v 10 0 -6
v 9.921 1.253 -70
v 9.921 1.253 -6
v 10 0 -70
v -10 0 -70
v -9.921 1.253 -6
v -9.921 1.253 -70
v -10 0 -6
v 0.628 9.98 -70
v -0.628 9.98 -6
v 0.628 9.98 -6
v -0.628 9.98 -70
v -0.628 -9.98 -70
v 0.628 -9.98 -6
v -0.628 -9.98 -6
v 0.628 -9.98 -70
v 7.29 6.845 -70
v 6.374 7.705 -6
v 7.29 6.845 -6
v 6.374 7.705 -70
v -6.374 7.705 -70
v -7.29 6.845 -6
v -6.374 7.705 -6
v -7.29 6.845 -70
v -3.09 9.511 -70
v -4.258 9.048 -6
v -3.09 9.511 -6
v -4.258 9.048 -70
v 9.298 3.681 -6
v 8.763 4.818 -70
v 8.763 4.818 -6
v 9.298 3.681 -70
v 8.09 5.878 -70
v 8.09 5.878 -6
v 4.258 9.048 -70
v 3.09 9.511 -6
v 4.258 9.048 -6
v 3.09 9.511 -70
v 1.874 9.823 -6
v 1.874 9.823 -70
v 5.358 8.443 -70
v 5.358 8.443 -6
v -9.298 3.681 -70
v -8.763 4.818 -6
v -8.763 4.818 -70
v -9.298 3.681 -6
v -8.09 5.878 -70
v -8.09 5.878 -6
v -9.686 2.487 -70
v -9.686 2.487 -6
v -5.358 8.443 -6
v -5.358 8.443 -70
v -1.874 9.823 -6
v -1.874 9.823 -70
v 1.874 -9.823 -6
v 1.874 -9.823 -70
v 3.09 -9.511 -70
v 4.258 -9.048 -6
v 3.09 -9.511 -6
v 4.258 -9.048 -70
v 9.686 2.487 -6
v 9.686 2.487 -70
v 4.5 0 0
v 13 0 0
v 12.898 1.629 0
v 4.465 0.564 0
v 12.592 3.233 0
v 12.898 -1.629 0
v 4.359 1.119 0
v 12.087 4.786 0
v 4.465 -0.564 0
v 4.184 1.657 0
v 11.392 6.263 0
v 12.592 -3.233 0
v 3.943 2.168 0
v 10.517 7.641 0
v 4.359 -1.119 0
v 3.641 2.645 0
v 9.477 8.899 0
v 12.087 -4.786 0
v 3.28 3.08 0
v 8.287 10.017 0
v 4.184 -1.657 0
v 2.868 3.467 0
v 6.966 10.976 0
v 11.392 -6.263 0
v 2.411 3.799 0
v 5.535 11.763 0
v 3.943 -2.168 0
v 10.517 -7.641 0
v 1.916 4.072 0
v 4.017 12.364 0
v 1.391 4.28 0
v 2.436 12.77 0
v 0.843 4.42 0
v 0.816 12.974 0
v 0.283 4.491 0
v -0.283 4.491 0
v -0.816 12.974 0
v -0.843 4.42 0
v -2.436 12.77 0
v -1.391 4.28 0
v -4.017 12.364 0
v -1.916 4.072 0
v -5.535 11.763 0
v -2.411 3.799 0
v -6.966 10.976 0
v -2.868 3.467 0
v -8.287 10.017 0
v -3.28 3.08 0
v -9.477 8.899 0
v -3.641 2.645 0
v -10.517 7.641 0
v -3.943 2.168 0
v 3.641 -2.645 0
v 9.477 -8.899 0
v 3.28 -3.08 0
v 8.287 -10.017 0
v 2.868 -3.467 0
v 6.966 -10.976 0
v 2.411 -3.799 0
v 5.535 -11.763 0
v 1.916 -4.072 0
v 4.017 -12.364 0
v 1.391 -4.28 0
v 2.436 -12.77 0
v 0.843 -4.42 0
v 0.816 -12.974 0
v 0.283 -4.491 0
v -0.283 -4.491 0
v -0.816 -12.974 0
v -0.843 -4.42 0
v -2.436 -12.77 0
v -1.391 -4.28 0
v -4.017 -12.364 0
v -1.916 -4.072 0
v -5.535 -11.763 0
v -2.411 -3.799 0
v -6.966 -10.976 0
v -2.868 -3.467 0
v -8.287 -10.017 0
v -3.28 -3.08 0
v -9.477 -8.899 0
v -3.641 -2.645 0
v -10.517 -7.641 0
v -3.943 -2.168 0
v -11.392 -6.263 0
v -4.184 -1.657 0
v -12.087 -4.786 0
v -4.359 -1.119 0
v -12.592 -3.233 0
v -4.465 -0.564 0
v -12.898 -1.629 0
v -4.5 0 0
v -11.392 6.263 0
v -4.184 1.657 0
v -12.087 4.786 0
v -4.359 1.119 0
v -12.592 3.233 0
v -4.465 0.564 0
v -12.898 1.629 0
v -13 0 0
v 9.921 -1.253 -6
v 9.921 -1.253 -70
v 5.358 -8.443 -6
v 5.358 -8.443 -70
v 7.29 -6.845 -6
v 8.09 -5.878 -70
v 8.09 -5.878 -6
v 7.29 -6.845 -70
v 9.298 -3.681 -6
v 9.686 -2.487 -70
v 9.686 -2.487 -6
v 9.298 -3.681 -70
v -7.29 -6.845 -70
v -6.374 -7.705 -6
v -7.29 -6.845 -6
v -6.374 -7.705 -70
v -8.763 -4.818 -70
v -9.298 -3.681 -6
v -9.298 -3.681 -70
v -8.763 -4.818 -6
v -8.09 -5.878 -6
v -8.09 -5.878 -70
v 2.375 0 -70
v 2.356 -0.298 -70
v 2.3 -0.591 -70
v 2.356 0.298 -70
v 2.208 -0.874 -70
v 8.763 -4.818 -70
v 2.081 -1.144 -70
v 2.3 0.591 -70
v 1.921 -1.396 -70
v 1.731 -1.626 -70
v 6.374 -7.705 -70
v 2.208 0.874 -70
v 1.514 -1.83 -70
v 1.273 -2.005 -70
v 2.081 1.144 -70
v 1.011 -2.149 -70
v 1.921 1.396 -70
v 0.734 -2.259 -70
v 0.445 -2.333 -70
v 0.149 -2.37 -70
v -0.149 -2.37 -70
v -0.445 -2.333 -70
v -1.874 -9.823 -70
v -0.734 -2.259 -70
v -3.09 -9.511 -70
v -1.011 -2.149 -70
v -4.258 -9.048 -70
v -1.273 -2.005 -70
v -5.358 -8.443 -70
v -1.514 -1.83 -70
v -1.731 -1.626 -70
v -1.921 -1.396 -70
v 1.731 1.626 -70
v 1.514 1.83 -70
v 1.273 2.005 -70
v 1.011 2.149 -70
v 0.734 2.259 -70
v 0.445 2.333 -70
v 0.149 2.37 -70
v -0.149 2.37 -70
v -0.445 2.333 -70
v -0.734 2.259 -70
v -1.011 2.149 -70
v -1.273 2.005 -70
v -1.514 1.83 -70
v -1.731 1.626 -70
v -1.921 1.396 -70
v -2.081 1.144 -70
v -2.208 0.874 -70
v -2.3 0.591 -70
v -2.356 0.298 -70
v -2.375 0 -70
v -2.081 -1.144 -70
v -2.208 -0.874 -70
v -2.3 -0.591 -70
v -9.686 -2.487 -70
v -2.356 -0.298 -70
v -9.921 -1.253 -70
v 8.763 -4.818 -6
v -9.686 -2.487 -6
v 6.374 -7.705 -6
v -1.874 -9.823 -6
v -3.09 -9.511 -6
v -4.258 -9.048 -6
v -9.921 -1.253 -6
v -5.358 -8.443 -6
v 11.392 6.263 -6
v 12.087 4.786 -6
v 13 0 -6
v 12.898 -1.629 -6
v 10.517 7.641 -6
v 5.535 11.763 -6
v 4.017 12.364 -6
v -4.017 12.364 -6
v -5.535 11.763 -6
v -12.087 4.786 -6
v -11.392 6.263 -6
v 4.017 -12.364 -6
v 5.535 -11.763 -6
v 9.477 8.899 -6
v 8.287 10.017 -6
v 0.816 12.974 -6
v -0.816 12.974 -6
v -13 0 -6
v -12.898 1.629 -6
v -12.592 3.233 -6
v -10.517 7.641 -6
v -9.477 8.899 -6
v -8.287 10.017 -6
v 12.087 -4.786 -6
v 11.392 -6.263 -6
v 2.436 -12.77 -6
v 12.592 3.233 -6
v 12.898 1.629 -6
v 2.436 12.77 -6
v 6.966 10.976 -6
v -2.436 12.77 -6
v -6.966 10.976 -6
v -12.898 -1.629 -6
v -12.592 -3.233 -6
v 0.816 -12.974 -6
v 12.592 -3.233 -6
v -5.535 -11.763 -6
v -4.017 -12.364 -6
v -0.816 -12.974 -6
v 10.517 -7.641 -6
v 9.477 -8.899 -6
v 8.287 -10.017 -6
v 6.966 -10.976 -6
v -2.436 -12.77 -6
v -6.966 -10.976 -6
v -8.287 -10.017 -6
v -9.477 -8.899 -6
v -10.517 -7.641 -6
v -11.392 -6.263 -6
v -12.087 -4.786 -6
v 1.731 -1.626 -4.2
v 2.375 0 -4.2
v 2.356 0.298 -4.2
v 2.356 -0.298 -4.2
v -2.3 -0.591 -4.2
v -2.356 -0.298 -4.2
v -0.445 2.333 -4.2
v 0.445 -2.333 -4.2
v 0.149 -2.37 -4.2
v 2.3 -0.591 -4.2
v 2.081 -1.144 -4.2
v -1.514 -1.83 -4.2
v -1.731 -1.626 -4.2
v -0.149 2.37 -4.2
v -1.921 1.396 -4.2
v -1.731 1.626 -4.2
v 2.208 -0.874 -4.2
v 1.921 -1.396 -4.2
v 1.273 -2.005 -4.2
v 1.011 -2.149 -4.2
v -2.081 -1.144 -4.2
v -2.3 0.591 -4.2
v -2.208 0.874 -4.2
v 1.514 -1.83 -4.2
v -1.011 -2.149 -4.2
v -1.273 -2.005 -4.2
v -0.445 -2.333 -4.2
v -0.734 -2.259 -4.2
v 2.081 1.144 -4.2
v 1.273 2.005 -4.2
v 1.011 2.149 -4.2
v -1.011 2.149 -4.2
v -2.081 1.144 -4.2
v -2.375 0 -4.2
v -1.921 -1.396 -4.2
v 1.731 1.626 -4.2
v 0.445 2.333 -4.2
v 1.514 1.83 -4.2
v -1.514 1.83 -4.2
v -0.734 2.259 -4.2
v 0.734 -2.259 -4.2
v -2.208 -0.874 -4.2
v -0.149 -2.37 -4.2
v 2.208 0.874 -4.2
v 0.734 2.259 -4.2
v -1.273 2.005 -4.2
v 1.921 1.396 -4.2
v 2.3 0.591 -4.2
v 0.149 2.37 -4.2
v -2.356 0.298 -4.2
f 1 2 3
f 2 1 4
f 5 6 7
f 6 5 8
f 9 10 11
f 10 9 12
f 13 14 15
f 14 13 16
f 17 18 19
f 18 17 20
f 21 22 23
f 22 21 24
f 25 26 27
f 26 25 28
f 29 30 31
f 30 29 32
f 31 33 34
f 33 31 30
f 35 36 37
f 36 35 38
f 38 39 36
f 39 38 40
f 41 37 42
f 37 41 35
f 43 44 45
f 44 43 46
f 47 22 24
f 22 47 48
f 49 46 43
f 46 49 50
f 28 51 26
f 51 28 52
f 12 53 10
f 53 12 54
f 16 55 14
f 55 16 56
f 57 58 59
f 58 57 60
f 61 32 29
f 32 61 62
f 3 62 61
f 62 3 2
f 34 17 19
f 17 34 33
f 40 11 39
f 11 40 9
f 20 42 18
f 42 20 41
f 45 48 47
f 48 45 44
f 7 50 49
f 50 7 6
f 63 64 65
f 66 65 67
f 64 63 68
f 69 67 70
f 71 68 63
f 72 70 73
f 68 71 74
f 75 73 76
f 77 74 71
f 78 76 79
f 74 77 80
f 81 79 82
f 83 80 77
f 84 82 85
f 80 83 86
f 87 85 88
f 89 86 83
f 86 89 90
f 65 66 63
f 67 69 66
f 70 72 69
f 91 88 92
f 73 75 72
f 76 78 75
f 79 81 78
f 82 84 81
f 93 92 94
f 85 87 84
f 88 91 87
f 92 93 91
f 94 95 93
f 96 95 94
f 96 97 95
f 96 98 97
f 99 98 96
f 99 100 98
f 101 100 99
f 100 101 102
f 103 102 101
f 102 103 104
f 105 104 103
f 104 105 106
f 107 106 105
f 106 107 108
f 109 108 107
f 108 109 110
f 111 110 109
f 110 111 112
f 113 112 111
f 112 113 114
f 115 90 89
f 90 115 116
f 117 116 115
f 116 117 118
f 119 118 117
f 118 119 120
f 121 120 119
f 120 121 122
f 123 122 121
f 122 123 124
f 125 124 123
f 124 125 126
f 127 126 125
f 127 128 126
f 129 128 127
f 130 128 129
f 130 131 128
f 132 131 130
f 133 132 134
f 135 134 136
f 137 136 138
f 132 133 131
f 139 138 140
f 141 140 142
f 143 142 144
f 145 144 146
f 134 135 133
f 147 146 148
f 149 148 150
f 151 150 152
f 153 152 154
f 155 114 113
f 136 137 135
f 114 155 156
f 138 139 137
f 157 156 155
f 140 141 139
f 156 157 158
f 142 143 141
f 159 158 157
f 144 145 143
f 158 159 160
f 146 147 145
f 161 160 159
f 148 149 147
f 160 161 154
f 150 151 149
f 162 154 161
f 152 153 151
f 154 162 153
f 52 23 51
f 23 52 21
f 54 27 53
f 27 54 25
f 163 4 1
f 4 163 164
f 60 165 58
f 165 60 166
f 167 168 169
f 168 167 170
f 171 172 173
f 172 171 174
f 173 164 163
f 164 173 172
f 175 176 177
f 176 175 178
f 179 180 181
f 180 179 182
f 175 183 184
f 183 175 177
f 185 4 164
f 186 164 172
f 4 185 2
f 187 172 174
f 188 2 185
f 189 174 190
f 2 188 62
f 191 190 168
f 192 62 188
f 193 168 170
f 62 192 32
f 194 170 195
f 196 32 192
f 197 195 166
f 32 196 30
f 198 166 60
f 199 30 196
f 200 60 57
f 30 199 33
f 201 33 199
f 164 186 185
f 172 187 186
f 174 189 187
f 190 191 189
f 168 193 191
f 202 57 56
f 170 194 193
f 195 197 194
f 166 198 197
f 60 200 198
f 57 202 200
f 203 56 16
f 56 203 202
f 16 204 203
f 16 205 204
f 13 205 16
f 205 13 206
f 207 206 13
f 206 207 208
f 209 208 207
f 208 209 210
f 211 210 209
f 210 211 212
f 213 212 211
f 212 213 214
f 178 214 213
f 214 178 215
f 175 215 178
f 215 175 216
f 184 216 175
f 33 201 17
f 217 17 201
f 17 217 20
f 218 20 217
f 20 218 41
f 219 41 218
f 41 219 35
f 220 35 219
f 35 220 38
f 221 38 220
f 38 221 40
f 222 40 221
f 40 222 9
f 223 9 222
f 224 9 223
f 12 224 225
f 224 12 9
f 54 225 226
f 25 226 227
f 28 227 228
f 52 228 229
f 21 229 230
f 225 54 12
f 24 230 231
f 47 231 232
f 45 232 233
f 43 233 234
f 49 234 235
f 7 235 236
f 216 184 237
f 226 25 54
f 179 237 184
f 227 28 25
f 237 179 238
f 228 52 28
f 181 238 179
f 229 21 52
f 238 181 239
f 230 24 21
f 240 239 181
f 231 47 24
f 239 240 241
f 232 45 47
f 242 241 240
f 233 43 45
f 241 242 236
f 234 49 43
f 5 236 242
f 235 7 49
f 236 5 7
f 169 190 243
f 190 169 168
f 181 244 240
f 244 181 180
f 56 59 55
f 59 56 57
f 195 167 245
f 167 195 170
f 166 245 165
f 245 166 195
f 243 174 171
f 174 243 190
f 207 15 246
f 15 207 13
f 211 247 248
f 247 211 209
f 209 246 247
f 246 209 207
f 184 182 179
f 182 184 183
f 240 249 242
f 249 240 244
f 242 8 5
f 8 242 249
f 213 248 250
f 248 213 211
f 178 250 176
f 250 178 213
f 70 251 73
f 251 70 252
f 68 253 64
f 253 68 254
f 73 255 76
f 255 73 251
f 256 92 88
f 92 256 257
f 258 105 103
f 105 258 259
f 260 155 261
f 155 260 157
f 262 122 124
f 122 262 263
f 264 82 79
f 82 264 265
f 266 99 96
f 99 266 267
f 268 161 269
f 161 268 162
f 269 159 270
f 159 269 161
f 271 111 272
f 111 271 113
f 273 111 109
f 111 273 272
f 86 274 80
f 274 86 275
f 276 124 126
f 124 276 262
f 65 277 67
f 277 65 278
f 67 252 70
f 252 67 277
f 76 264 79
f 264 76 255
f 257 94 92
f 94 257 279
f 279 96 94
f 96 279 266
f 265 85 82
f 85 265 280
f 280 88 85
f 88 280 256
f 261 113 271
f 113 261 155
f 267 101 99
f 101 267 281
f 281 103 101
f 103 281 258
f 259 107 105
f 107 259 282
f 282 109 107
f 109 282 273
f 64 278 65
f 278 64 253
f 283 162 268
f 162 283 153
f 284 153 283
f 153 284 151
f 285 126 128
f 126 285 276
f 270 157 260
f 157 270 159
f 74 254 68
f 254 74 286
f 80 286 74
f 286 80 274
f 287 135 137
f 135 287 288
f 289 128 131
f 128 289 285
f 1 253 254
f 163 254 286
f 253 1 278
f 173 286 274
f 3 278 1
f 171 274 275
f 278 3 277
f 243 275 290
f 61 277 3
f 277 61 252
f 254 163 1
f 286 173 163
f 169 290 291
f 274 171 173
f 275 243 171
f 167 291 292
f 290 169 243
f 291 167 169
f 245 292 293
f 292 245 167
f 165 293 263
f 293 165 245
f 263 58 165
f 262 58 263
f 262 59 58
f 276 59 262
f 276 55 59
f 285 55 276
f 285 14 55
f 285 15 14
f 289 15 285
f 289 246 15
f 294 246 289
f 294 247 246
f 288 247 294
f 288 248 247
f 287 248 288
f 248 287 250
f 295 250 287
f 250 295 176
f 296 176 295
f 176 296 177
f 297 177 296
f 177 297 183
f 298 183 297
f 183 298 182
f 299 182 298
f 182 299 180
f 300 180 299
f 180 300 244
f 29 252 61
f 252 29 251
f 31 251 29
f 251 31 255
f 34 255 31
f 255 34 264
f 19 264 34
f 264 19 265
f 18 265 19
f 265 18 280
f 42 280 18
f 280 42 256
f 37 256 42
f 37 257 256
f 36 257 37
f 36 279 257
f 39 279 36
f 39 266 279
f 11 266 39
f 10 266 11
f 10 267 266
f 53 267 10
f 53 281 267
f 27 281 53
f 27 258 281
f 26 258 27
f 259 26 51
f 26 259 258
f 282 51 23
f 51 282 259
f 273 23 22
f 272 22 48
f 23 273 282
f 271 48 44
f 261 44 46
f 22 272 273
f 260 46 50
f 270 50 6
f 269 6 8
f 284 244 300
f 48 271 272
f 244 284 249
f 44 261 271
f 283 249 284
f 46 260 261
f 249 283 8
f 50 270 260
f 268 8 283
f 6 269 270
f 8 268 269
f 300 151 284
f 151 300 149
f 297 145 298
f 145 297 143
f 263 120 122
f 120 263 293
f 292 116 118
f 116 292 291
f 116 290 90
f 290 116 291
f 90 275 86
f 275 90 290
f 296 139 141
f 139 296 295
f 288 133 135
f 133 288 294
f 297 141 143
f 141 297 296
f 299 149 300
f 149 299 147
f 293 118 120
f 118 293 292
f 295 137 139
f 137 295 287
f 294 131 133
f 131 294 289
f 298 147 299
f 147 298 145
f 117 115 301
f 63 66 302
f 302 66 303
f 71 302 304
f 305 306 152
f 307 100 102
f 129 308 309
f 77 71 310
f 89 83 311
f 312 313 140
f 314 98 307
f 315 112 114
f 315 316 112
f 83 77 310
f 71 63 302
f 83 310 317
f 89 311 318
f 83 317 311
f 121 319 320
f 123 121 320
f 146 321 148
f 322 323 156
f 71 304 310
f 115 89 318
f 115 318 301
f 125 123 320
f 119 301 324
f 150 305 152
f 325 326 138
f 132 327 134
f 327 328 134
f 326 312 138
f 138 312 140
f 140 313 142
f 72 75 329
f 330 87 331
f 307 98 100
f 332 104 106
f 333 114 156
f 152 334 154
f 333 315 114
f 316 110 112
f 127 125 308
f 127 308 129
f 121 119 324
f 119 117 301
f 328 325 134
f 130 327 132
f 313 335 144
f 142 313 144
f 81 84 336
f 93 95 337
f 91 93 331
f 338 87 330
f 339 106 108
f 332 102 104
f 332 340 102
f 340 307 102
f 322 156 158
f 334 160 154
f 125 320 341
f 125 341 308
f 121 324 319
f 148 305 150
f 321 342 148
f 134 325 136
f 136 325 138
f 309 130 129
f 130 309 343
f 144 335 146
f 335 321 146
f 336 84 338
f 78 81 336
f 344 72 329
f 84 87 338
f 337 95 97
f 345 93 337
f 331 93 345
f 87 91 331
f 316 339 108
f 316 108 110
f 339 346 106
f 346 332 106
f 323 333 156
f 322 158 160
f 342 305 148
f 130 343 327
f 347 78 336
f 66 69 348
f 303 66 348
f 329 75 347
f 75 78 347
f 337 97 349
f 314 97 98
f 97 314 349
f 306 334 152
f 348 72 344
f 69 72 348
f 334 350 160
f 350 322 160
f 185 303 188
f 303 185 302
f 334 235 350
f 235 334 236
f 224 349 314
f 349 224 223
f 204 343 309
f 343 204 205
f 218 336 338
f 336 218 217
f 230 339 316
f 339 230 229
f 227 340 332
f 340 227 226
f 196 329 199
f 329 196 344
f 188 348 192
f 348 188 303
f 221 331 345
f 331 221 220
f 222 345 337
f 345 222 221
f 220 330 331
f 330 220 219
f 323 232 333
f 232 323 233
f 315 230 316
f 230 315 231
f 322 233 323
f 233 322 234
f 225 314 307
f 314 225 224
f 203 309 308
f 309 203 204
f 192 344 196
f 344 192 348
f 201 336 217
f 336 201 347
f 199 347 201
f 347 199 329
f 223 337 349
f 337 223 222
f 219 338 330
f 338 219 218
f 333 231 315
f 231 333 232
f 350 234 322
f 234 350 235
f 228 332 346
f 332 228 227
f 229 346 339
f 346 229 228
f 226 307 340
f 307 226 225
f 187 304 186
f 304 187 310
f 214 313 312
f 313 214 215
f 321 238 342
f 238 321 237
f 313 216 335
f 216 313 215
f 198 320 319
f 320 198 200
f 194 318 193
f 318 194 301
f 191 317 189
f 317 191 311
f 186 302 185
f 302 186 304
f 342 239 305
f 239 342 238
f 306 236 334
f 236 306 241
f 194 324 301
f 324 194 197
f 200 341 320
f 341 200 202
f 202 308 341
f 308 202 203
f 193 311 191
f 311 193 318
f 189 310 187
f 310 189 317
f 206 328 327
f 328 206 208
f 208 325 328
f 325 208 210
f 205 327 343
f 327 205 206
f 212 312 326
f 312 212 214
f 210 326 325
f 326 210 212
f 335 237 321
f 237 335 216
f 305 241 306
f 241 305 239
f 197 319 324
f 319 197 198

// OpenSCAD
$fn = 50;


difference() {
	union() {
		translate(v = [0, 0, -70.0000000000]) {
			cylinder(h = 70, r = 10.0000000000);
		}
		translate(v = [0, 0, -6.0000000000]) {
			cylinder(h = 6, r = 13.0000000000);
		}
	}
	union() {
		translate(v = [0, 0, 0]) {
			rotate(a = [0, 0, 0]) {
				difference() {
					union() {
						#translate(v = [0, 0, -70.0000000000]) {
							cylinder(h = 70, r = 2.2500000000);
						}
						#translate(v = [0, 0, -4.2000000000]) {
							cylinder(h = 4.2000000000, r1 = 2.3750000000, r2 = 4.5000000000);
						}
						#translate(v = [0, 0, -70.0000000000]) {
							cylinder(h = 70, r = 2.3750000000);
						}
						#translate(v = [0, 0, -70.0000000000]) {
							cylinder(h = 70, r = 2.2500000000);
						}
					}
					union();
				}
			}
		}
	}
}
